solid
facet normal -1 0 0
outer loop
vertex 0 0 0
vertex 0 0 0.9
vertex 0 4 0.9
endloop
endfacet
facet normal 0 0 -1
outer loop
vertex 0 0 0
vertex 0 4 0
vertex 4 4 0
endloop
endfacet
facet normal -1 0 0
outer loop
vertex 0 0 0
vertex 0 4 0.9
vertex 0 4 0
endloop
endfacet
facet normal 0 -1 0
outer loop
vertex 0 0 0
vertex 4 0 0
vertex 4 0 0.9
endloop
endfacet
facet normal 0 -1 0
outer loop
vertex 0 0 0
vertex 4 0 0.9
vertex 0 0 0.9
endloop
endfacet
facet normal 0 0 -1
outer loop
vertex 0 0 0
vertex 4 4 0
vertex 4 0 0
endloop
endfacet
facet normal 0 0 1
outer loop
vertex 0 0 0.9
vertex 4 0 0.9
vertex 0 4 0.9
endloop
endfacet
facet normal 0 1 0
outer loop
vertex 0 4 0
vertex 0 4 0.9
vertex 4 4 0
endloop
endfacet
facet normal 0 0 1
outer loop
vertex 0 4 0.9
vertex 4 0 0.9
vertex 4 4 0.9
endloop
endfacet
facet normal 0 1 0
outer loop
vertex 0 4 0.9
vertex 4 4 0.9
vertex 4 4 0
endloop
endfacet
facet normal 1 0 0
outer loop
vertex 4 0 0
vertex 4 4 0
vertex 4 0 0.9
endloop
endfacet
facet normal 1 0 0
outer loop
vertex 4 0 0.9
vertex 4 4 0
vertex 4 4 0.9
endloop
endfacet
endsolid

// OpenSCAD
/* Warning, this is a very basic generator with a lot of approximation 
input data : [VDFN, KAA, 4x4x0.9mm, 12, , A, C04-01022A]
generated by com.zoubworld.electronics.cad.model3d.Basic
Date : Sun Feb 15 10:50:49 CET 2026
*/

//body
color("black")
translate([0,0,0])
cube([4.0,4.0,0.9], center=false);
